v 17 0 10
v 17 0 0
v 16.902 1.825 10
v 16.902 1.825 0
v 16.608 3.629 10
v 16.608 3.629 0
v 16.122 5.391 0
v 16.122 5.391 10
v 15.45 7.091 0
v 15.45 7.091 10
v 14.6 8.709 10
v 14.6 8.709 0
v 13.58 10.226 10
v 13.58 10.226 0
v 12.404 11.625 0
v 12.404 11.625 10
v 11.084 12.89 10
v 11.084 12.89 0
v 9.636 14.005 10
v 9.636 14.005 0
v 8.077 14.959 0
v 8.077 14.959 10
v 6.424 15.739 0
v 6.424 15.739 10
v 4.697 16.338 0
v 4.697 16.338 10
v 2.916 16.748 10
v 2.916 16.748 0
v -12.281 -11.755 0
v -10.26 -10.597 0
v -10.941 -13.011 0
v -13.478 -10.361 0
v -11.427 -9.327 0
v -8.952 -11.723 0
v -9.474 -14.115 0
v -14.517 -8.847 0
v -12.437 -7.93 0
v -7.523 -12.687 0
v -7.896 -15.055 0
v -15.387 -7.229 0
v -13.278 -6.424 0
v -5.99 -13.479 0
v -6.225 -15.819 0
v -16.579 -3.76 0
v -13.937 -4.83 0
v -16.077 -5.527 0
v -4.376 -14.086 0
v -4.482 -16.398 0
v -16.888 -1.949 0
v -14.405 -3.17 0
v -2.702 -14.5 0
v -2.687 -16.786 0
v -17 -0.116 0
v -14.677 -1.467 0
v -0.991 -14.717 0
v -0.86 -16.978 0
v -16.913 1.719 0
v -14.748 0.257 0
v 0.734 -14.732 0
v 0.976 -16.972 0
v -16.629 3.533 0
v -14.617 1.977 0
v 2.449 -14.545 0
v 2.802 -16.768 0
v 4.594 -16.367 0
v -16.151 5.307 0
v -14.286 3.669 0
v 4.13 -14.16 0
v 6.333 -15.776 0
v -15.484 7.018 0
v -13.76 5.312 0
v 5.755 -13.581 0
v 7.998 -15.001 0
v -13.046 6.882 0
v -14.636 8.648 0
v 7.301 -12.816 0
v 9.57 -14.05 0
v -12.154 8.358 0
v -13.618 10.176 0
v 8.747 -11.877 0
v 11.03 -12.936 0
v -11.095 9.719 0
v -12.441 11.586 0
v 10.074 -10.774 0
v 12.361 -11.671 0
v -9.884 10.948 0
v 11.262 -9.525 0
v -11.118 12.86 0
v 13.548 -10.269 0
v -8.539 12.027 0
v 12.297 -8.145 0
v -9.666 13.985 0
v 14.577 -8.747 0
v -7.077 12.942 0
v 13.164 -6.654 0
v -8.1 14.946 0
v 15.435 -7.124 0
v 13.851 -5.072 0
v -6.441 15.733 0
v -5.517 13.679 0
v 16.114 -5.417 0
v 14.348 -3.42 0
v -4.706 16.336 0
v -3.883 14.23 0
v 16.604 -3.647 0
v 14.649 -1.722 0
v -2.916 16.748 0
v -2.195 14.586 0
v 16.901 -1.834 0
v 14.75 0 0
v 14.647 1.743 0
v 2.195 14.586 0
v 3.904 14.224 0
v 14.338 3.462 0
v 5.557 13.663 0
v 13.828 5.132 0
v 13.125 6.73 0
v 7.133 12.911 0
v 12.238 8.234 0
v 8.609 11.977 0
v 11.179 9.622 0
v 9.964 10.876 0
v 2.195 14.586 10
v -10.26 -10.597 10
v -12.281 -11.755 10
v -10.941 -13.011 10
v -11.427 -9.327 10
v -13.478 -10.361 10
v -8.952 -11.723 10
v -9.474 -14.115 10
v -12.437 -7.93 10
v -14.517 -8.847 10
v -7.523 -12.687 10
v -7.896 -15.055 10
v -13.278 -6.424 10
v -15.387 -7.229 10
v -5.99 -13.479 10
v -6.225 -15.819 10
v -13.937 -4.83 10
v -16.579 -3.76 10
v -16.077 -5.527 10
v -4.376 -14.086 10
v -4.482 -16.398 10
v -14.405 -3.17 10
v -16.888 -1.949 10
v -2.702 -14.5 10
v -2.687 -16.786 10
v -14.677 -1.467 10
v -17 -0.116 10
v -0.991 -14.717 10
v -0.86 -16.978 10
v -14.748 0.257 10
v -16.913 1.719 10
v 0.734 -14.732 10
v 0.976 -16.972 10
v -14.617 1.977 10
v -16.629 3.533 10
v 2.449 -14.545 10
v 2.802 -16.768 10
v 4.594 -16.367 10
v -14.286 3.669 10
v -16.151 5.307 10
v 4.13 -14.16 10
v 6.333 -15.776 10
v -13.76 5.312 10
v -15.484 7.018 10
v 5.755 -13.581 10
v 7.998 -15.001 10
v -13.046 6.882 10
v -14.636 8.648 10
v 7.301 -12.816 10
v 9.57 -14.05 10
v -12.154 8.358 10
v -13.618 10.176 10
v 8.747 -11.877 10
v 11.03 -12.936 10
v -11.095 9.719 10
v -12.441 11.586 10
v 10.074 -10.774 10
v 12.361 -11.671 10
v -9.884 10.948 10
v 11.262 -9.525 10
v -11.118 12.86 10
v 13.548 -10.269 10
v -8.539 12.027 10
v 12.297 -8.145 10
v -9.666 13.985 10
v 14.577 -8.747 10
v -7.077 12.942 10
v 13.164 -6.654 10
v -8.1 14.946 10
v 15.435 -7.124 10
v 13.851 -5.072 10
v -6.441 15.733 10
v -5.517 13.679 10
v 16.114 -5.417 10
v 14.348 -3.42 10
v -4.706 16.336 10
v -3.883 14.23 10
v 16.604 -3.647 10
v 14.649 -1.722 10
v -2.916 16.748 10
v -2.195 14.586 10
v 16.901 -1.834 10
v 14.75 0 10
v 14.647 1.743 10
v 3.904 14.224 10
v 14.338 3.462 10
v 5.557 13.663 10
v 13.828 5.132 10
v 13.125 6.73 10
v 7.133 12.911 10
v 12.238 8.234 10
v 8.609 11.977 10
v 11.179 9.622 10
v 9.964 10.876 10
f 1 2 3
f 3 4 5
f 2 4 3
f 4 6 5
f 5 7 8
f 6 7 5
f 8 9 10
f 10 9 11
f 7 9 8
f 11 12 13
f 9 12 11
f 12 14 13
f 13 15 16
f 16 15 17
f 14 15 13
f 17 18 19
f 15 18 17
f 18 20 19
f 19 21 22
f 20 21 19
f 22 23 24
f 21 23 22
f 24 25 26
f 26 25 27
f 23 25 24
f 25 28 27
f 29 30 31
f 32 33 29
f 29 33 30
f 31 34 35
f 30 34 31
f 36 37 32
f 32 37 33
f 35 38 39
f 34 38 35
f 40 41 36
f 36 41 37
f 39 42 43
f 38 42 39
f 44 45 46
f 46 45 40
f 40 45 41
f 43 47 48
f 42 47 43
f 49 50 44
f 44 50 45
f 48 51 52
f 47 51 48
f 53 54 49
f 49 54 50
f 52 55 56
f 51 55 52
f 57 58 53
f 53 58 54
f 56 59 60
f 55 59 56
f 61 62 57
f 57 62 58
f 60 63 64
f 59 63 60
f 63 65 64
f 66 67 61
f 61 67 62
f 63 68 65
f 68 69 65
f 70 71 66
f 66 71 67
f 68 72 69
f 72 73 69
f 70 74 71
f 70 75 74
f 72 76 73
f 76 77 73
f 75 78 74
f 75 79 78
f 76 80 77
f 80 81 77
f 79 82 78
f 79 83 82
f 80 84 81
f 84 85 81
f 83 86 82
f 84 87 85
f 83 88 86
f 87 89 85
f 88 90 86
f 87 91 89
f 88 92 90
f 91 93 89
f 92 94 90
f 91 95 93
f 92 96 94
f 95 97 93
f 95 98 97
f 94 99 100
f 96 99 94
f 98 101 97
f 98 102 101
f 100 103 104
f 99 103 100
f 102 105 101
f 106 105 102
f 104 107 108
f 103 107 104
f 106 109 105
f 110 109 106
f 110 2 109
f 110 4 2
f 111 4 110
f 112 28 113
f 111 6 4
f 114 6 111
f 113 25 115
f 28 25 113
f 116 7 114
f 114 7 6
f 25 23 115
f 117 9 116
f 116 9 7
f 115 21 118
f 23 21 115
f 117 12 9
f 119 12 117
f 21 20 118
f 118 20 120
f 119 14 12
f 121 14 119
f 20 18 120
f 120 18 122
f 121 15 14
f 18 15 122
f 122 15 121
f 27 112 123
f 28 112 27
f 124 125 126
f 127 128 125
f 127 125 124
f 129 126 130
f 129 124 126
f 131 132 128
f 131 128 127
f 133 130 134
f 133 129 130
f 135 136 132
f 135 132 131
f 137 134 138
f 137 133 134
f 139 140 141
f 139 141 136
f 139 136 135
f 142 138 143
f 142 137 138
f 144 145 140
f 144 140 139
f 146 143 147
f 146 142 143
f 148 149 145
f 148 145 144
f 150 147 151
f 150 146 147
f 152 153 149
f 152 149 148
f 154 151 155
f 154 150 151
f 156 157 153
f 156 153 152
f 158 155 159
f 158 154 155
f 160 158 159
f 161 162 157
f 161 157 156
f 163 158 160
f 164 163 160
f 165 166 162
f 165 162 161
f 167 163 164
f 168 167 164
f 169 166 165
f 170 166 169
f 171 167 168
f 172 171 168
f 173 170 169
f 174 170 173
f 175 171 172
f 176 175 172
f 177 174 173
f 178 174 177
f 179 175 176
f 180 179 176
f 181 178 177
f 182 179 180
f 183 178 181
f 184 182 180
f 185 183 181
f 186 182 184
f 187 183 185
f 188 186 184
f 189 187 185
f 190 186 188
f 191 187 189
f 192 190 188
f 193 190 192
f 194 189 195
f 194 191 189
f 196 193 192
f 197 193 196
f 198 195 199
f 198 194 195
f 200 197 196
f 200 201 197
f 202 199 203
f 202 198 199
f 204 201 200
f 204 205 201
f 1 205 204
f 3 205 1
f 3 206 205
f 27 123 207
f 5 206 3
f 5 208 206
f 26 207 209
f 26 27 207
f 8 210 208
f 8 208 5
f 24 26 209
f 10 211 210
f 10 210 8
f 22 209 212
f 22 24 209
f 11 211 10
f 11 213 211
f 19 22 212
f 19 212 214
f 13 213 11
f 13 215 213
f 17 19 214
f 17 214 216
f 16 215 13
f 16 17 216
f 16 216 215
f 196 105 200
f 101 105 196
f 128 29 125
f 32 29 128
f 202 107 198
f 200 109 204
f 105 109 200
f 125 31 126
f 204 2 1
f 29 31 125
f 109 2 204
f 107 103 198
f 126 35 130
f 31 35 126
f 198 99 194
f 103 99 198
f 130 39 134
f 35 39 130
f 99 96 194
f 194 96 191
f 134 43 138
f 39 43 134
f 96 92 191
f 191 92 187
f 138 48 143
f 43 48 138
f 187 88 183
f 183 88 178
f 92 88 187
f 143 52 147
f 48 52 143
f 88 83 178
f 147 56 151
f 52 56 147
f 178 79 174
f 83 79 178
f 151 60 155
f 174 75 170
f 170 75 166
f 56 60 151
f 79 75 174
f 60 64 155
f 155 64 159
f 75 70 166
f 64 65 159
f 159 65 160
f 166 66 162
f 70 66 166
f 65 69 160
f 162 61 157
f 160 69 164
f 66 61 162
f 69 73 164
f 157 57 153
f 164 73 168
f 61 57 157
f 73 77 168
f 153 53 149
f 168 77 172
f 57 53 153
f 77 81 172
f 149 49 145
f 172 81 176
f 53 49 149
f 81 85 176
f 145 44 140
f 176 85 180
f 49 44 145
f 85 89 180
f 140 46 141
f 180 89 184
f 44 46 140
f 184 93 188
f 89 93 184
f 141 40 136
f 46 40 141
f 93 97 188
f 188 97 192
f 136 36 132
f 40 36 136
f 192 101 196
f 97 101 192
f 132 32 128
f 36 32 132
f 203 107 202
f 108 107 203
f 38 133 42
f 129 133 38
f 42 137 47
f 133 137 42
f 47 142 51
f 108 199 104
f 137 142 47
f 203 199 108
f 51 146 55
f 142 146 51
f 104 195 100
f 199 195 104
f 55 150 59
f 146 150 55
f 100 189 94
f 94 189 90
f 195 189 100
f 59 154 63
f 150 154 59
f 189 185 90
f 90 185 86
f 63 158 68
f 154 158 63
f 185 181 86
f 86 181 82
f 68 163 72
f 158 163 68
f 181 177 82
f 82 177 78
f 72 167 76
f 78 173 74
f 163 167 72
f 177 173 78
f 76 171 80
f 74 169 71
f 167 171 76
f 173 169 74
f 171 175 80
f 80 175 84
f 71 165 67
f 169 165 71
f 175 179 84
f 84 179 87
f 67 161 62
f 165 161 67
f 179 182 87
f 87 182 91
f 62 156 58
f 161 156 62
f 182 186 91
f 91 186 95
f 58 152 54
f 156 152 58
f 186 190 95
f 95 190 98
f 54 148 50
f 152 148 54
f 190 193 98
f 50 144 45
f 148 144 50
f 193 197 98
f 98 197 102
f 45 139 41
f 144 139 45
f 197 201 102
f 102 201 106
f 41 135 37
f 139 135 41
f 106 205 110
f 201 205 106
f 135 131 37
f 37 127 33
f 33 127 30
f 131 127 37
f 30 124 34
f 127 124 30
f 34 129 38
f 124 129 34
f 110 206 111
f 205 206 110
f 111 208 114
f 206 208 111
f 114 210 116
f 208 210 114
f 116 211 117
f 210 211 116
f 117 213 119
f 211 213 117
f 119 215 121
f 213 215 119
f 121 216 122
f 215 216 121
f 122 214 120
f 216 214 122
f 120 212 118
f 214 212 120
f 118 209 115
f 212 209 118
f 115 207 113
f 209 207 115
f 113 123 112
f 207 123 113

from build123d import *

# Parameters (mm, degrees)
PAD001_DEPTH = 10
SKETCH_R     = 17
PAD_DEPTH    = 10
SKETCH001_R  = 14.75
POCKET_DEPTH = 10


with BuildPart() as adapter_ring_cutout:
    # Sketch002 → Pad001 (new body)
    with BuildSketch(Plane.XY):
        Polygon((-3, 17), (3, 17), (2, 14), (-2, 14), align=None)
    extrude(amount=PAD001_DEPTH)


with BuildPart() as cut:
    # Sketch → Pad (new body)
    with BuildSketch(Plane.XY):
        Circle(SKETCH_R)
    extrude(amount=PAD_DEPTH)

    # Sketch001 (on Face3 of Pad) → Pocket (cut)
    with BuildSketch(Plane.XY.offset(10)):
        Circle(SKETCH001_R)
    extrude(amount=-POCKET_DEPTH, mode=Mode.SUBTRACT)

    # Cut: cut adapter ring cutout
    add(adapter_ring_cutout.part, mode=Mode.SUBTRACT)


solid = cut.part
